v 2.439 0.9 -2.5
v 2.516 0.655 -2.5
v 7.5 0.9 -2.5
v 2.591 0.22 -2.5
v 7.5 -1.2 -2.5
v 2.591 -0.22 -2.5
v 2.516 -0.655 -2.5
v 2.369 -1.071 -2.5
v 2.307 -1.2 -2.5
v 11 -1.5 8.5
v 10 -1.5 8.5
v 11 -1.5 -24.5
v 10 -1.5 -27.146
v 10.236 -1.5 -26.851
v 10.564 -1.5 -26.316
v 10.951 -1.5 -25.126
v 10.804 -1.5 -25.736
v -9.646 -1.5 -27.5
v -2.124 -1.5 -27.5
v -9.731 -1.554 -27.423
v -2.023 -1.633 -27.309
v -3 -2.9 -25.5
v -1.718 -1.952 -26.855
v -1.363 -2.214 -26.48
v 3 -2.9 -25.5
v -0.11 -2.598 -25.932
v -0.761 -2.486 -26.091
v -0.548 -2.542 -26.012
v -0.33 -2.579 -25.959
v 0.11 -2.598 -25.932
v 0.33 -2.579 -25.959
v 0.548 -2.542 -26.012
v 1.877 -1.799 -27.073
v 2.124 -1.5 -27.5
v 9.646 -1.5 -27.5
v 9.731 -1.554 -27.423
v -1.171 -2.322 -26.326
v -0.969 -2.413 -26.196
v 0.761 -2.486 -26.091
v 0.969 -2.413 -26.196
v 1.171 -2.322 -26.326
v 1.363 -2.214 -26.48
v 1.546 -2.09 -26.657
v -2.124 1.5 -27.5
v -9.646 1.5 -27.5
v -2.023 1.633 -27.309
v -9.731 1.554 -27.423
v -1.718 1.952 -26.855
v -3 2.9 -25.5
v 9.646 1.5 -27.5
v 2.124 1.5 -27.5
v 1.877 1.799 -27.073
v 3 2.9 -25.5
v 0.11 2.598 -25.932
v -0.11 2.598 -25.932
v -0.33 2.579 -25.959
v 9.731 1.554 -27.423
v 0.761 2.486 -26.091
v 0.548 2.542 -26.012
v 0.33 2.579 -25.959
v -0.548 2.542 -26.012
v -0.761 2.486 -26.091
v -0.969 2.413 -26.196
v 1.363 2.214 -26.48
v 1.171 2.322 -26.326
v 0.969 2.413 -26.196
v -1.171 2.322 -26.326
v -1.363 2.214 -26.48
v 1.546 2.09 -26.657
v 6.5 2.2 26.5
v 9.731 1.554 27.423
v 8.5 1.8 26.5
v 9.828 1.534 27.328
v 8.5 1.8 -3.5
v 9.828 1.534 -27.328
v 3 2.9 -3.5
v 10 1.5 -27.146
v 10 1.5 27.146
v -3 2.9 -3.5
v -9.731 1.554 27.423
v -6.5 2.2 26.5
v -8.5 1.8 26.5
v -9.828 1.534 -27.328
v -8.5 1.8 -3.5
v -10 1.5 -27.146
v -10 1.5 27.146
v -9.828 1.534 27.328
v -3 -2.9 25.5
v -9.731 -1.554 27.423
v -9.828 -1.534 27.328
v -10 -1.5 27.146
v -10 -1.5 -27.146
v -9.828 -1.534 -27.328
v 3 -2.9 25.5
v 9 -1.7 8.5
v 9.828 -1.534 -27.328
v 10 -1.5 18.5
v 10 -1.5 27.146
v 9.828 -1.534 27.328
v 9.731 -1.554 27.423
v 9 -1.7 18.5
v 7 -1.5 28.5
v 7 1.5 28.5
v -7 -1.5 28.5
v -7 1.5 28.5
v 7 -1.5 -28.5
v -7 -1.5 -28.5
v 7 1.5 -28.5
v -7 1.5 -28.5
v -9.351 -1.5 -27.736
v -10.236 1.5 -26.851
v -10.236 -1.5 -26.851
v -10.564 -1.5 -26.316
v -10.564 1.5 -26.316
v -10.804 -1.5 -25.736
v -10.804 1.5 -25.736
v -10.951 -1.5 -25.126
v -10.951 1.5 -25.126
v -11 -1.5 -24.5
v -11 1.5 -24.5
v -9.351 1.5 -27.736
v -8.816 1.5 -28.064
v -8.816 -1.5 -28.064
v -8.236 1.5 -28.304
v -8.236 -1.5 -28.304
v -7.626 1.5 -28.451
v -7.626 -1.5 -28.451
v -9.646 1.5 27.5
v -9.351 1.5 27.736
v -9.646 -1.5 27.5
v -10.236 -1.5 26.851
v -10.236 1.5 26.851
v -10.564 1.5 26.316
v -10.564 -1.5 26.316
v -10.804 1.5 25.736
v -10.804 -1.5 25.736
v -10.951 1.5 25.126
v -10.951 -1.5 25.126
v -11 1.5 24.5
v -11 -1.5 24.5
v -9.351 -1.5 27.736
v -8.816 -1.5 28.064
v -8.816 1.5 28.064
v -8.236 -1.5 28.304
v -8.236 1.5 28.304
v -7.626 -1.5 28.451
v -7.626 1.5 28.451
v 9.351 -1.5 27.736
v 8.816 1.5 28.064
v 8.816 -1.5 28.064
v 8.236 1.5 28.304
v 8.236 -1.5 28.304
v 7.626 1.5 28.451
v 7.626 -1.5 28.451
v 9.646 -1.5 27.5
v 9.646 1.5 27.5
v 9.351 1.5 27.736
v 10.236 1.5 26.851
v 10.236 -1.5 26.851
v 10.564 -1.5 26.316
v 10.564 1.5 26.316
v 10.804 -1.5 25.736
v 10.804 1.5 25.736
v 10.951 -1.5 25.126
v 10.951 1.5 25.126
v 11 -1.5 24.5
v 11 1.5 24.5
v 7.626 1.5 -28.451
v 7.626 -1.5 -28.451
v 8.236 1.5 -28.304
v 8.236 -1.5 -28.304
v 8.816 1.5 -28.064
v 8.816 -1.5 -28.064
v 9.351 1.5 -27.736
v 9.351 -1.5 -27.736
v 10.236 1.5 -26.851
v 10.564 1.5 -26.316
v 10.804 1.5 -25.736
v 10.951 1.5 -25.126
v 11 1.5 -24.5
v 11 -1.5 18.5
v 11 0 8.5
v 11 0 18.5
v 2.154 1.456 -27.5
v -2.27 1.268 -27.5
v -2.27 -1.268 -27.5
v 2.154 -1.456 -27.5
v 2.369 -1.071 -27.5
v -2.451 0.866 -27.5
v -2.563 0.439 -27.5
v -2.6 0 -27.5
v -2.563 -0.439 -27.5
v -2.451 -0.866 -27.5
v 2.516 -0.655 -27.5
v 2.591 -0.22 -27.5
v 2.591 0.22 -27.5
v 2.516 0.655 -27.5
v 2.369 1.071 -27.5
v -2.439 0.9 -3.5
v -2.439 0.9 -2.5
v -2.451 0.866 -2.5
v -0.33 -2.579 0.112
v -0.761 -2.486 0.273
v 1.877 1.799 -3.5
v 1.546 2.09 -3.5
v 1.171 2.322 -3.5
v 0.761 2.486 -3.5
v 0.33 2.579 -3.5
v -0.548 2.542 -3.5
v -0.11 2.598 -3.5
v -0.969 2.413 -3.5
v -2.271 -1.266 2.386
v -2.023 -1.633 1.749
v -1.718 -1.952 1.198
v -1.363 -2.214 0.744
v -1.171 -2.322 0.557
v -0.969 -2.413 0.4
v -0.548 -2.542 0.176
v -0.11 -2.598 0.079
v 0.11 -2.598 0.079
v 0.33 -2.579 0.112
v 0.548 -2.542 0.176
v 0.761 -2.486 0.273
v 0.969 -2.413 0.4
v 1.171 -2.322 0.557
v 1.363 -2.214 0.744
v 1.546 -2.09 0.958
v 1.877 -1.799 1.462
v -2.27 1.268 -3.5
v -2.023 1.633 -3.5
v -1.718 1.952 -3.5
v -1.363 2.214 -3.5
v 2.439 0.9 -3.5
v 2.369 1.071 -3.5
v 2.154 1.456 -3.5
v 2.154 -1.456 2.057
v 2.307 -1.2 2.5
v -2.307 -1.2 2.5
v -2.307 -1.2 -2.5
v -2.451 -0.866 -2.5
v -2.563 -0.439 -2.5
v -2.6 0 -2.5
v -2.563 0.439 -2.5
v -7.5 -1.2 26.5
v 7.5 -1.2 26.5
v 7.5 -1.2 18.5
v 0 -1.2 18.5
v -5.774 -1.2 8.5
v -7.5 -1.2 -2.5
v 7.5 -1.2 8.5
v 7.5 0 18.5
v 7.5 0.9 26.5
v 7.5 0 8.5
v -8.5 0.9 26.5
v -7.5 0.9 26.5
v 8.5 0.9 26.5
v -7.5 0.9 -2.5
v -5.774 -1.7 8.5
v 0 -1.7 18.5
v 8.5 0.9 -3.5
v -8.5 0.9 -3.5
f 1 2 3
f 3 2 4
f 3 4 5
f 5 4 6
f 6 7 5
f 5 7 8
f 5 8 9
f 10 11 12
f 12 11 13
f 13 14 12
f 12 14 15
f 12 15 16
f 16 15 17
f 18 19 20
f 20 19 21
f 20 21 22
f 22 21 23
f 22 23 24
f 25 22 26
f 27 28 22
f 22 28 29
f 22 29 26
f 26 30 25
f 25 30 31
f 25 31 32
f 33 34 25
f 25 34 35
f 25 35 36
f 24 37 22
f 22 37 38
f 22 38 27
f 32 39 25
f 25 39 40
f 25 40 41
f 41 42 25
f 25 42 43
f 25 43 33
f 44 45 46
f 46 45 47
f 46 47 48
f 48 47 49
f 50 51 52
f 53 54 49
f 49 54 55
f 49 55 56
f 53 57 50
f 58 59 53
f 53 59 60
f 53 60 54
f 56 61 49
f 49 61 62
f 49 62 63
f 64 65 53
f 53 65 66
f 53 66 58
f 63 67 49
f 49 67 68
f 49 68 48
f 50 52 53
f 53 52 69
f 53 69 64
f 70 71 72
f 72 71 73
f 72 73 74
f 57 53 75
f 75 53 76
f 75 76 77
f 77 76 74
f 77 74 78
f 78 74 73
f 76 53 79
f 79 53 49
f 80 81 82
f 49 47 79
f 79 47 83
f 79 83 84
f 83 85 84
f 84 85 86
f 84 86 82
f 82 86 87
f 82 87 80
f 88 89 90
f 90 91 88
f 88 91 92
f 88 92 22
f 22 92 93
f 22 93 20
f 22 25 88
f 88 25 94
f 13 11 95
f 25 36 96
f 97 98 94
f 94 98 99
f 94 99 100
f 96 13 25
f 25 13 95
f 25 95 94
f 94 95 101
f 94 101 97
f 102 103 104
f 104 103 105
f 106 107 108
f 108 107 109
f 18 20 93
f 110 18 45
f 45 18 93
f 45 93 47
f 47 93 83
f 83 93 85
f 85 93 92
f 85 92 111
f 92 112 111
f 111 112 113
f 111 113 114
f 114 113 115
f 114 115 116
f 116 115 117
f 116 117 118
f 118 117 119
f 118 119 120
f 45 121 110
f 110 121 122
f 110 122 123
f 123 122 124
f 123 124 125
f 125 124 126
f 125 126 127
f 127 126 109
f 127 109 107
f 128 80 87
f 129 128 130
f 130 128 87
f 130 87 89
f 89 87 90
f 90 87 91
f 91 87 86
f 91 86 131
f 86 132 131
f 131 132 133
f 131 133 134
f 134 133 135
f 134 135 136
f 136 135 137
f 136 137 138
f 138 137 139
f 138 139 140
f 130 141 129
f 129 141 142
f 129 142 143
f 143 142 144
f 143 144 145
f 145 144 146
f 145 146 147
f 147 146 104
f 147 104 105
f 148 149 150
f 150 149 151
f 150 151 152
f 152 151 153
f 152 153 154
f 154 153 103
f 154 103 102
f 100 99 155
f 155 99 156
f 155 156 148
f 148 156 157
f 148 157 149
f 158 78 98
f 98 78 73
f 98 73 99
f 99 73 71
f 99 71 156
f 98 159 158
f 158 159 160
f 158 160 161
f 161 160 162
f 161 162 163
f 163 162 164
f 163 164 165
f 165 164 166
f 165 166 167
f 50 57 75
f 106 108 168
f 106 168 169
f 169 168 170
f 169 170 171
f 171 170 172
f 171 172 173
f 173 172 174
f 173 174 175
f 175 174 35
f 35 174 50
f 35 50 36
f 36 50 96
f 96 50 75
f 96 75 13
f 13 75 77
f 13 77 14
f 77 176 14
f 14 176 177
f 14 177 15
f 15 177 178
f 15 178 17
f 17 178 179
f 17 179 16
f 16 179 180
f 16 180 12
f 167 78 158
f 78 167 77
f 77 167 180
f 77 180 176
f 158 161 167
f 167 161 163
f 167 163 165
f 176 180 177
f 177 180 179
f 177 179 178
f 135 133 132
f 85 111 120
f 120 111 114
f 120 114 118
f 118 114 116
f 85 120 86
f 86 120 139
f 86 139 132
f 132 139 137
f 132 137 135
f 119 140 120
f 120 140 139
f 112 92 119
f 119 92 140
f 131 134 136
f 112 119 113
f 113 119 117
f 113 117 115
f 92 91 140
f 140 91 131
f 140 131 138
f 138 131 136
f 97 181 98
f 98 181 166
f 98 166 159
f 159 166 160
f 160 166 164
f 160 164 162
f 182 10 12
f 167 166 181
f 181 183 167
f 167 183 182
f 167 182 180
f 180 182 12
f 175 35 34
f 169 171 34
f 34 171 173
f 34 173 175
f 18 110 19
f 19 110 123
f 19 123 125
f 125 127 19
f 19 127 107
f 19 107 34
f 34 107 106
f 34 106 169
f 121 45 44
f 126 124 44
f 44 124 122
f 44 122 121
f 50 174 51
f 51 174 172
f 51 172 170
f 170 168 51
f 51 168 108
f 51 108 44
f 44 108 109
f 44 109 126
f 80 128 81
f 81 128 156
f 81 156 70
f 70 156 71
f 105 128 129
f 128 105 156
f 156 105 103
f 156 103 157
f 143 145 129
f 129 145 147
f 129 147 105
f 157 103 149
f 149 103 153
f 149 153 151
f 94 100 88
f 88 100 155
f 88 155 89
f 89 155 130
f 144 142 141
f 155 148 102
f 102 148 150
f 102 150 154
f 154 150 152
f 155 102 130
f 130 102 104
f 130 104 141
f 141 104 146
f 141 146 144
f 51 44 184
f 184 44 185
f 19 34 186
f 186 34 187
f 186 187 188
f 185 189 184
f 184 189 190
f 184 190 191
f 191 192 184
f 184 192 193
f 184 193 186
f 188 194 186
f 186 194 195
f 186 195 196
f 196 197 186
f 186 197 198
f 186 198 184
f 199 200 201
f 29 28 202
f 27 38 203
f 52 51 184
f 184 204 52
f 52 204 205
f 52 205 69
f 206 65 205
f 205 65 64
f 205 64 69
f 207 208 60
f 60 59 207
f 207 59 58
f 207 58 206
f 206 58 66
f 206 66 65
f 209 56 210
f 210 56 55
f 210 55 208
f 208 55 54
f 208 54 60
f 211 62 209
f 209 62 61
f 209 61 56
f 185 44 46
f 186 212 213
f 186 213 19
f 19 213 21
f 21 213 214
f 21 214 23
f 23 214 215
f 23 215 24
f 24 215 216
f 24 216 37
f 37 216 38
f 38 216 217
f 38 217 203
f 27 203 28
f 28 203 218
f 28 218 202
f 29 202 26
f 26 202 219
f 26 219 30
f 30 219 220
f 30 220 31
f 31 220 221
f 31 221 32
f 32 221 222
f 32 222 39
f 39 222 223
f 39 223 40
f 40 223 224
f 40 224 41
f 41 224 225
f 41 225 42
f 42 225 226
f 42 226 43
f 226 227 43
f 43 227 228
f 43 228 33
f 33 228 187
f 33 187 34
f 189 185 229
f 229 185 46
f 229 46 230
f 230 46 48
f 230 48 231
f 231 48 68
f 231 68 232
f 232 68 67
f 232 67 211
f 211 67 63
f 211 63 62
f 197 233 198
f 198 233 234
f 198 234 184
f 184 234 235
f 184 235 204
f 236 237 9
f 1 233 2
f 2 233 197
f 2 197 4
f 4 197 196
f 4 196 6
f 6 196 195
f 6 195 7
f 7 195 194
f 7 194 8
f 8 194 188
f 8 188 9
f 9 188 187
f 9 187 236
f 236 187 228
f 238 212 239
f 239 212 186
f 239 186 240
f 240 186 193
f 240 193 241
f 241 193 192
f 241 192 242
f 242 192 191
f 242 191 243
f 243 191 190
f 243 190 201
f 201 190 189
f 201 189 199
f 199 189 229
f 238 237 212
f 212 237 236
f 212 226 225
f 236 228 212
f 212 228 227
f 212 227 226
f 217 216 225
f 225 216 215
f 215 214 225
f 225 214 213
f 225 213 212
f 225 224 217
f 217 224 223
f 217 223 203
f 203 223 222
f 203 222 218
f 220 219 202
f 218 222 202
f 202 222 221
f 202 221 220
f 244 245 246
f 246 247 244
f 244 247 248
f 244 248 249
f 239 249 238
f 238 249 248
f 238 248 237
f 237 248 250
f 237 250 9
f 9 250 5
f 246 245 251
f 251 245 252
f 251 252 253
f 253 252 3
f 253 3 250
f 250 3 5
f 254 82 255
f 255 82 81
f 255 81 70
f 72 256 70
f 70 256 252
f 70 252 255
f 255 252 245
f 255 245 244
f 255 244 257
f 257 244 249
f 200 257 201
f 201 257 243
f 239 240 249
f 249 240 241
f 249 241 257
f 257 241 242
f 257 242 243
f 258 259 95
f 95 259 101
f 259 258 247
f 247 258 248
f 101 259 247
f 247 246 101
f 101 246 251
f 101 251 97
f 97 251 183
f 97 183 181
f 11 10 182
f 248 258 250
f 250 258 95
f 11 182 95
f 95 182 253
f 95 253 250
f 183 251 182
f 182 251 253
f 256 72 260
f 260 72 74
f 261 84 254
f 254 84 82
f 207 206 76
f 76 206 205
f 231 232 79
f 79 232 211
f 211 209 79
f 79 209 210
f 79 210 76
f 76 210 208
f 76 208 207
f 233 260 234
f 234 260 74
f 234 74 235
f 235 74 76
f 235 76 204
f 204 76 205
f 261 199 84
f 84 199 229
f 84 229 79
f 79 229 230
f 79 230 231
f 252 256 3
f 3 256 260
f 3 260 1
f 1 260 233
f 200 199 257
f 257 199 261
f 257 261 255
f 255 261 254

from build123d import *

# Parameters (mm, degrees)
EXTRUDE_1_DEPTH          = 28.5
FILLET_3_R               = 4
CUT_EXTRUDE_1_DEPTH      = 31.686479107
CUT_EXTRUDE_1_DEPTH_BACK = 31.686479107
SKETCH_4_W               = 15
SKETCH_4_H               = 29
CUT_EXTRUDE_5_DEPTH      = 1.2
CUT_EXTRUDE_6_DEPTH      = 5
CUT_EXTRUDE_6_DEPTH_BACK = 25
SKETCH_5_R               = 2.6
CUT_EXTRUDE_7_DEPTH      = 31.823043328
DRAFT_1_ANGLE            = 60
SKETCH_7_W               = 10
SKETCH_7_H               = 1.2
SKETCH_7_H_2             = 0.5
CUT_EXTRUDE_8_DEPTH      = 31.686479107
DRAFT_3_ANGLE            = 30
SKETCH_8_W               = 17
SKETCH_8_H               = 30
CUT_EXTRUDE_9_DEPTH      = 2


with BuildPart() as part:
    # Эскиз2 → Бобышка-Вытянуть1 (new, symmetric)
    with BuildSketch(Plane.XY):
        Polygon((-10, 1.5), (-3, 2.9), (0, 2.9), (3, 2.9), (10, 1.5), (11, 1.5), (11, -1.5), (10, -1.5), (3, -2.9), (0, -2.9), (-3, -2.9), (-10, -1.5), (-11, -1.5), (-11, 1.5), align=None)
    extrude(amount=EXTRUDE_1_DEPTH, both=True)

    # Скругление3
    fillet_3_edges = [part.edges().sort_by_distance(p)[0] for p in [
        (-11, 0, -28.5),
        (-11, 0, 28.5),
        (11, 0, 28.5),
        (11, 0, -28.5),
    ]]
    fillet(fillet_3_edges, radius=FILLET_3_R)

    # Эскиз3 → Вырез-Вытянуть1 (cut, two sides: drawn at the far end of the back side and taken through both)
    with BuildSketch(Plane(origin=(0, 0, 0), x_dir=(0, 0, -1), z_dir=(1, 0, 0)).offset(-CUT_EXTRUDE_1_DEPTH_BACK)):
        Polygon((28.5, 2.9), (25.5, 2.9), (27.5, 1.5), (28.5, 1.5), align=None)
        Polygon((-27.5, -1.5), (-28.5, -1.5), (-28.5, -2.9), (-25.5, -2.9), align=None)
        Polygon((-25.5, 2.9), (-28.5, 2.9), (-28.5, 1.5), (-27.5, 1.5), align=None)
        Polygon((25.5, -2.9), (28.5, -2.9), (28.5, -1.5), (27.5, -1.5), align=None)
    extrude(amount=CUT_EXTRUDE_1_DEPTH + CUT_EXTRUDE_1_DEPTH_BACK, mode=Mode.SUBTRACT)

    # Эскиз4 → Вырез-Вытянуть5 (cut, symmetric)
    with BuildSketch(Plane(origin=(0, 0, 0), x_dir=(1, 0, 0), z_dir=(0, 1, 0))):
        with Locations((0, -12)):
            Rectangle(SKETCH_4_W, SKETCH_4_H)
    extrude(amount=CUT_EXTRUDE_5_DEPTH, both=True, mode=Mode.SUBTRACT)

    # Эскиз5 → Вырез-Вытянуть6 (cut, two sides: drawn at the far end of the back side and taken through both)
    with BuildSketch(Plane.XY.offset(-2.5).offset(-CUT_EXTRUDE_6_DEPTH_BACK)):
        with Locations(Location((0, 0, 0), (0, 0, 152.51357375))):
            Circle(SKETCH_5_R)
    extrude(amount=CUT_EXTRUDE_6_DEPTH + CUT_EXTRUDE_6_DEPTH_BACK, mode=Mode.SUBTRACT)

    # Эскиз6 → Вырез-Вытянуть7 (cut, through all)
    with BuildSketch(Plane.XZ.offset(-1.2)):
        Polygon((-2.306512519, -2.5), (2.306512519, -2.5), (7.5, -2.5), (7.5, 26.5), (-7.5, 26.5), (-7.5, -2.5), align=None)
    extrude(amount=-CUT_EXTRUDE_7_DEPTH, mode=Mode.SUBTRACT)

    # Уклон1
    draft_1_faces = [part.faces().sort_by_distance(p)[0] for p in [
        (0, -1.775343229, 2.5),
    ]]
    draft(draft_1_faces, Plane.ZX.offset(-1.2), DRAFT_1_ANGLE)

    # Эскиз7 → Вырез-Вытянуть8 (cut, through all)
    with BuildSketch(Plane(origin=(0, 0, 0), x_dir=(0, 0, -1), z_dir=(1, 0, 0))):
        with Locations((-13.5, -0.6)):
            Rectangle(SKETCH_7_W, SKETCH_7_H)
        with Locations((-13.5, -1.45)):
            Rectangle(SKETCH_7_W, SKETCH_7_H_2)
    extrude(amount=CUT_EXTRUDE_8_DEPTH, mode=Mode.SUBTRACT)

    # Уклон3
    draft_3_faces = [part.faces().sort_by_distance(p)[0] for p in [
        (0, -1.45, 13.5),
    ]]
    draft(draft_3_faces, Plane(origin=(11, 0, 18.5), x_dir=(-1, 0, 0), z_dir=(0, 0, -1)), DRAFT_3_ANGLE)

    # Эскиз8 → Вырез-Вытянуть9 (cut)
    with BuildSketch(Plane(origin=(0, 2.9, 0), x_dir=(1, 0, 0), z_dir=(0, 1, 0))):
        with Locations((0, -11.5)):
            Rectangle(SKETCH_8_W, SKETCH_8_H)
    extrude(amount=-CUT_EXTRUDE_9_DEPTH, mode=Mode.SUBTRACT)


solid = part.part
